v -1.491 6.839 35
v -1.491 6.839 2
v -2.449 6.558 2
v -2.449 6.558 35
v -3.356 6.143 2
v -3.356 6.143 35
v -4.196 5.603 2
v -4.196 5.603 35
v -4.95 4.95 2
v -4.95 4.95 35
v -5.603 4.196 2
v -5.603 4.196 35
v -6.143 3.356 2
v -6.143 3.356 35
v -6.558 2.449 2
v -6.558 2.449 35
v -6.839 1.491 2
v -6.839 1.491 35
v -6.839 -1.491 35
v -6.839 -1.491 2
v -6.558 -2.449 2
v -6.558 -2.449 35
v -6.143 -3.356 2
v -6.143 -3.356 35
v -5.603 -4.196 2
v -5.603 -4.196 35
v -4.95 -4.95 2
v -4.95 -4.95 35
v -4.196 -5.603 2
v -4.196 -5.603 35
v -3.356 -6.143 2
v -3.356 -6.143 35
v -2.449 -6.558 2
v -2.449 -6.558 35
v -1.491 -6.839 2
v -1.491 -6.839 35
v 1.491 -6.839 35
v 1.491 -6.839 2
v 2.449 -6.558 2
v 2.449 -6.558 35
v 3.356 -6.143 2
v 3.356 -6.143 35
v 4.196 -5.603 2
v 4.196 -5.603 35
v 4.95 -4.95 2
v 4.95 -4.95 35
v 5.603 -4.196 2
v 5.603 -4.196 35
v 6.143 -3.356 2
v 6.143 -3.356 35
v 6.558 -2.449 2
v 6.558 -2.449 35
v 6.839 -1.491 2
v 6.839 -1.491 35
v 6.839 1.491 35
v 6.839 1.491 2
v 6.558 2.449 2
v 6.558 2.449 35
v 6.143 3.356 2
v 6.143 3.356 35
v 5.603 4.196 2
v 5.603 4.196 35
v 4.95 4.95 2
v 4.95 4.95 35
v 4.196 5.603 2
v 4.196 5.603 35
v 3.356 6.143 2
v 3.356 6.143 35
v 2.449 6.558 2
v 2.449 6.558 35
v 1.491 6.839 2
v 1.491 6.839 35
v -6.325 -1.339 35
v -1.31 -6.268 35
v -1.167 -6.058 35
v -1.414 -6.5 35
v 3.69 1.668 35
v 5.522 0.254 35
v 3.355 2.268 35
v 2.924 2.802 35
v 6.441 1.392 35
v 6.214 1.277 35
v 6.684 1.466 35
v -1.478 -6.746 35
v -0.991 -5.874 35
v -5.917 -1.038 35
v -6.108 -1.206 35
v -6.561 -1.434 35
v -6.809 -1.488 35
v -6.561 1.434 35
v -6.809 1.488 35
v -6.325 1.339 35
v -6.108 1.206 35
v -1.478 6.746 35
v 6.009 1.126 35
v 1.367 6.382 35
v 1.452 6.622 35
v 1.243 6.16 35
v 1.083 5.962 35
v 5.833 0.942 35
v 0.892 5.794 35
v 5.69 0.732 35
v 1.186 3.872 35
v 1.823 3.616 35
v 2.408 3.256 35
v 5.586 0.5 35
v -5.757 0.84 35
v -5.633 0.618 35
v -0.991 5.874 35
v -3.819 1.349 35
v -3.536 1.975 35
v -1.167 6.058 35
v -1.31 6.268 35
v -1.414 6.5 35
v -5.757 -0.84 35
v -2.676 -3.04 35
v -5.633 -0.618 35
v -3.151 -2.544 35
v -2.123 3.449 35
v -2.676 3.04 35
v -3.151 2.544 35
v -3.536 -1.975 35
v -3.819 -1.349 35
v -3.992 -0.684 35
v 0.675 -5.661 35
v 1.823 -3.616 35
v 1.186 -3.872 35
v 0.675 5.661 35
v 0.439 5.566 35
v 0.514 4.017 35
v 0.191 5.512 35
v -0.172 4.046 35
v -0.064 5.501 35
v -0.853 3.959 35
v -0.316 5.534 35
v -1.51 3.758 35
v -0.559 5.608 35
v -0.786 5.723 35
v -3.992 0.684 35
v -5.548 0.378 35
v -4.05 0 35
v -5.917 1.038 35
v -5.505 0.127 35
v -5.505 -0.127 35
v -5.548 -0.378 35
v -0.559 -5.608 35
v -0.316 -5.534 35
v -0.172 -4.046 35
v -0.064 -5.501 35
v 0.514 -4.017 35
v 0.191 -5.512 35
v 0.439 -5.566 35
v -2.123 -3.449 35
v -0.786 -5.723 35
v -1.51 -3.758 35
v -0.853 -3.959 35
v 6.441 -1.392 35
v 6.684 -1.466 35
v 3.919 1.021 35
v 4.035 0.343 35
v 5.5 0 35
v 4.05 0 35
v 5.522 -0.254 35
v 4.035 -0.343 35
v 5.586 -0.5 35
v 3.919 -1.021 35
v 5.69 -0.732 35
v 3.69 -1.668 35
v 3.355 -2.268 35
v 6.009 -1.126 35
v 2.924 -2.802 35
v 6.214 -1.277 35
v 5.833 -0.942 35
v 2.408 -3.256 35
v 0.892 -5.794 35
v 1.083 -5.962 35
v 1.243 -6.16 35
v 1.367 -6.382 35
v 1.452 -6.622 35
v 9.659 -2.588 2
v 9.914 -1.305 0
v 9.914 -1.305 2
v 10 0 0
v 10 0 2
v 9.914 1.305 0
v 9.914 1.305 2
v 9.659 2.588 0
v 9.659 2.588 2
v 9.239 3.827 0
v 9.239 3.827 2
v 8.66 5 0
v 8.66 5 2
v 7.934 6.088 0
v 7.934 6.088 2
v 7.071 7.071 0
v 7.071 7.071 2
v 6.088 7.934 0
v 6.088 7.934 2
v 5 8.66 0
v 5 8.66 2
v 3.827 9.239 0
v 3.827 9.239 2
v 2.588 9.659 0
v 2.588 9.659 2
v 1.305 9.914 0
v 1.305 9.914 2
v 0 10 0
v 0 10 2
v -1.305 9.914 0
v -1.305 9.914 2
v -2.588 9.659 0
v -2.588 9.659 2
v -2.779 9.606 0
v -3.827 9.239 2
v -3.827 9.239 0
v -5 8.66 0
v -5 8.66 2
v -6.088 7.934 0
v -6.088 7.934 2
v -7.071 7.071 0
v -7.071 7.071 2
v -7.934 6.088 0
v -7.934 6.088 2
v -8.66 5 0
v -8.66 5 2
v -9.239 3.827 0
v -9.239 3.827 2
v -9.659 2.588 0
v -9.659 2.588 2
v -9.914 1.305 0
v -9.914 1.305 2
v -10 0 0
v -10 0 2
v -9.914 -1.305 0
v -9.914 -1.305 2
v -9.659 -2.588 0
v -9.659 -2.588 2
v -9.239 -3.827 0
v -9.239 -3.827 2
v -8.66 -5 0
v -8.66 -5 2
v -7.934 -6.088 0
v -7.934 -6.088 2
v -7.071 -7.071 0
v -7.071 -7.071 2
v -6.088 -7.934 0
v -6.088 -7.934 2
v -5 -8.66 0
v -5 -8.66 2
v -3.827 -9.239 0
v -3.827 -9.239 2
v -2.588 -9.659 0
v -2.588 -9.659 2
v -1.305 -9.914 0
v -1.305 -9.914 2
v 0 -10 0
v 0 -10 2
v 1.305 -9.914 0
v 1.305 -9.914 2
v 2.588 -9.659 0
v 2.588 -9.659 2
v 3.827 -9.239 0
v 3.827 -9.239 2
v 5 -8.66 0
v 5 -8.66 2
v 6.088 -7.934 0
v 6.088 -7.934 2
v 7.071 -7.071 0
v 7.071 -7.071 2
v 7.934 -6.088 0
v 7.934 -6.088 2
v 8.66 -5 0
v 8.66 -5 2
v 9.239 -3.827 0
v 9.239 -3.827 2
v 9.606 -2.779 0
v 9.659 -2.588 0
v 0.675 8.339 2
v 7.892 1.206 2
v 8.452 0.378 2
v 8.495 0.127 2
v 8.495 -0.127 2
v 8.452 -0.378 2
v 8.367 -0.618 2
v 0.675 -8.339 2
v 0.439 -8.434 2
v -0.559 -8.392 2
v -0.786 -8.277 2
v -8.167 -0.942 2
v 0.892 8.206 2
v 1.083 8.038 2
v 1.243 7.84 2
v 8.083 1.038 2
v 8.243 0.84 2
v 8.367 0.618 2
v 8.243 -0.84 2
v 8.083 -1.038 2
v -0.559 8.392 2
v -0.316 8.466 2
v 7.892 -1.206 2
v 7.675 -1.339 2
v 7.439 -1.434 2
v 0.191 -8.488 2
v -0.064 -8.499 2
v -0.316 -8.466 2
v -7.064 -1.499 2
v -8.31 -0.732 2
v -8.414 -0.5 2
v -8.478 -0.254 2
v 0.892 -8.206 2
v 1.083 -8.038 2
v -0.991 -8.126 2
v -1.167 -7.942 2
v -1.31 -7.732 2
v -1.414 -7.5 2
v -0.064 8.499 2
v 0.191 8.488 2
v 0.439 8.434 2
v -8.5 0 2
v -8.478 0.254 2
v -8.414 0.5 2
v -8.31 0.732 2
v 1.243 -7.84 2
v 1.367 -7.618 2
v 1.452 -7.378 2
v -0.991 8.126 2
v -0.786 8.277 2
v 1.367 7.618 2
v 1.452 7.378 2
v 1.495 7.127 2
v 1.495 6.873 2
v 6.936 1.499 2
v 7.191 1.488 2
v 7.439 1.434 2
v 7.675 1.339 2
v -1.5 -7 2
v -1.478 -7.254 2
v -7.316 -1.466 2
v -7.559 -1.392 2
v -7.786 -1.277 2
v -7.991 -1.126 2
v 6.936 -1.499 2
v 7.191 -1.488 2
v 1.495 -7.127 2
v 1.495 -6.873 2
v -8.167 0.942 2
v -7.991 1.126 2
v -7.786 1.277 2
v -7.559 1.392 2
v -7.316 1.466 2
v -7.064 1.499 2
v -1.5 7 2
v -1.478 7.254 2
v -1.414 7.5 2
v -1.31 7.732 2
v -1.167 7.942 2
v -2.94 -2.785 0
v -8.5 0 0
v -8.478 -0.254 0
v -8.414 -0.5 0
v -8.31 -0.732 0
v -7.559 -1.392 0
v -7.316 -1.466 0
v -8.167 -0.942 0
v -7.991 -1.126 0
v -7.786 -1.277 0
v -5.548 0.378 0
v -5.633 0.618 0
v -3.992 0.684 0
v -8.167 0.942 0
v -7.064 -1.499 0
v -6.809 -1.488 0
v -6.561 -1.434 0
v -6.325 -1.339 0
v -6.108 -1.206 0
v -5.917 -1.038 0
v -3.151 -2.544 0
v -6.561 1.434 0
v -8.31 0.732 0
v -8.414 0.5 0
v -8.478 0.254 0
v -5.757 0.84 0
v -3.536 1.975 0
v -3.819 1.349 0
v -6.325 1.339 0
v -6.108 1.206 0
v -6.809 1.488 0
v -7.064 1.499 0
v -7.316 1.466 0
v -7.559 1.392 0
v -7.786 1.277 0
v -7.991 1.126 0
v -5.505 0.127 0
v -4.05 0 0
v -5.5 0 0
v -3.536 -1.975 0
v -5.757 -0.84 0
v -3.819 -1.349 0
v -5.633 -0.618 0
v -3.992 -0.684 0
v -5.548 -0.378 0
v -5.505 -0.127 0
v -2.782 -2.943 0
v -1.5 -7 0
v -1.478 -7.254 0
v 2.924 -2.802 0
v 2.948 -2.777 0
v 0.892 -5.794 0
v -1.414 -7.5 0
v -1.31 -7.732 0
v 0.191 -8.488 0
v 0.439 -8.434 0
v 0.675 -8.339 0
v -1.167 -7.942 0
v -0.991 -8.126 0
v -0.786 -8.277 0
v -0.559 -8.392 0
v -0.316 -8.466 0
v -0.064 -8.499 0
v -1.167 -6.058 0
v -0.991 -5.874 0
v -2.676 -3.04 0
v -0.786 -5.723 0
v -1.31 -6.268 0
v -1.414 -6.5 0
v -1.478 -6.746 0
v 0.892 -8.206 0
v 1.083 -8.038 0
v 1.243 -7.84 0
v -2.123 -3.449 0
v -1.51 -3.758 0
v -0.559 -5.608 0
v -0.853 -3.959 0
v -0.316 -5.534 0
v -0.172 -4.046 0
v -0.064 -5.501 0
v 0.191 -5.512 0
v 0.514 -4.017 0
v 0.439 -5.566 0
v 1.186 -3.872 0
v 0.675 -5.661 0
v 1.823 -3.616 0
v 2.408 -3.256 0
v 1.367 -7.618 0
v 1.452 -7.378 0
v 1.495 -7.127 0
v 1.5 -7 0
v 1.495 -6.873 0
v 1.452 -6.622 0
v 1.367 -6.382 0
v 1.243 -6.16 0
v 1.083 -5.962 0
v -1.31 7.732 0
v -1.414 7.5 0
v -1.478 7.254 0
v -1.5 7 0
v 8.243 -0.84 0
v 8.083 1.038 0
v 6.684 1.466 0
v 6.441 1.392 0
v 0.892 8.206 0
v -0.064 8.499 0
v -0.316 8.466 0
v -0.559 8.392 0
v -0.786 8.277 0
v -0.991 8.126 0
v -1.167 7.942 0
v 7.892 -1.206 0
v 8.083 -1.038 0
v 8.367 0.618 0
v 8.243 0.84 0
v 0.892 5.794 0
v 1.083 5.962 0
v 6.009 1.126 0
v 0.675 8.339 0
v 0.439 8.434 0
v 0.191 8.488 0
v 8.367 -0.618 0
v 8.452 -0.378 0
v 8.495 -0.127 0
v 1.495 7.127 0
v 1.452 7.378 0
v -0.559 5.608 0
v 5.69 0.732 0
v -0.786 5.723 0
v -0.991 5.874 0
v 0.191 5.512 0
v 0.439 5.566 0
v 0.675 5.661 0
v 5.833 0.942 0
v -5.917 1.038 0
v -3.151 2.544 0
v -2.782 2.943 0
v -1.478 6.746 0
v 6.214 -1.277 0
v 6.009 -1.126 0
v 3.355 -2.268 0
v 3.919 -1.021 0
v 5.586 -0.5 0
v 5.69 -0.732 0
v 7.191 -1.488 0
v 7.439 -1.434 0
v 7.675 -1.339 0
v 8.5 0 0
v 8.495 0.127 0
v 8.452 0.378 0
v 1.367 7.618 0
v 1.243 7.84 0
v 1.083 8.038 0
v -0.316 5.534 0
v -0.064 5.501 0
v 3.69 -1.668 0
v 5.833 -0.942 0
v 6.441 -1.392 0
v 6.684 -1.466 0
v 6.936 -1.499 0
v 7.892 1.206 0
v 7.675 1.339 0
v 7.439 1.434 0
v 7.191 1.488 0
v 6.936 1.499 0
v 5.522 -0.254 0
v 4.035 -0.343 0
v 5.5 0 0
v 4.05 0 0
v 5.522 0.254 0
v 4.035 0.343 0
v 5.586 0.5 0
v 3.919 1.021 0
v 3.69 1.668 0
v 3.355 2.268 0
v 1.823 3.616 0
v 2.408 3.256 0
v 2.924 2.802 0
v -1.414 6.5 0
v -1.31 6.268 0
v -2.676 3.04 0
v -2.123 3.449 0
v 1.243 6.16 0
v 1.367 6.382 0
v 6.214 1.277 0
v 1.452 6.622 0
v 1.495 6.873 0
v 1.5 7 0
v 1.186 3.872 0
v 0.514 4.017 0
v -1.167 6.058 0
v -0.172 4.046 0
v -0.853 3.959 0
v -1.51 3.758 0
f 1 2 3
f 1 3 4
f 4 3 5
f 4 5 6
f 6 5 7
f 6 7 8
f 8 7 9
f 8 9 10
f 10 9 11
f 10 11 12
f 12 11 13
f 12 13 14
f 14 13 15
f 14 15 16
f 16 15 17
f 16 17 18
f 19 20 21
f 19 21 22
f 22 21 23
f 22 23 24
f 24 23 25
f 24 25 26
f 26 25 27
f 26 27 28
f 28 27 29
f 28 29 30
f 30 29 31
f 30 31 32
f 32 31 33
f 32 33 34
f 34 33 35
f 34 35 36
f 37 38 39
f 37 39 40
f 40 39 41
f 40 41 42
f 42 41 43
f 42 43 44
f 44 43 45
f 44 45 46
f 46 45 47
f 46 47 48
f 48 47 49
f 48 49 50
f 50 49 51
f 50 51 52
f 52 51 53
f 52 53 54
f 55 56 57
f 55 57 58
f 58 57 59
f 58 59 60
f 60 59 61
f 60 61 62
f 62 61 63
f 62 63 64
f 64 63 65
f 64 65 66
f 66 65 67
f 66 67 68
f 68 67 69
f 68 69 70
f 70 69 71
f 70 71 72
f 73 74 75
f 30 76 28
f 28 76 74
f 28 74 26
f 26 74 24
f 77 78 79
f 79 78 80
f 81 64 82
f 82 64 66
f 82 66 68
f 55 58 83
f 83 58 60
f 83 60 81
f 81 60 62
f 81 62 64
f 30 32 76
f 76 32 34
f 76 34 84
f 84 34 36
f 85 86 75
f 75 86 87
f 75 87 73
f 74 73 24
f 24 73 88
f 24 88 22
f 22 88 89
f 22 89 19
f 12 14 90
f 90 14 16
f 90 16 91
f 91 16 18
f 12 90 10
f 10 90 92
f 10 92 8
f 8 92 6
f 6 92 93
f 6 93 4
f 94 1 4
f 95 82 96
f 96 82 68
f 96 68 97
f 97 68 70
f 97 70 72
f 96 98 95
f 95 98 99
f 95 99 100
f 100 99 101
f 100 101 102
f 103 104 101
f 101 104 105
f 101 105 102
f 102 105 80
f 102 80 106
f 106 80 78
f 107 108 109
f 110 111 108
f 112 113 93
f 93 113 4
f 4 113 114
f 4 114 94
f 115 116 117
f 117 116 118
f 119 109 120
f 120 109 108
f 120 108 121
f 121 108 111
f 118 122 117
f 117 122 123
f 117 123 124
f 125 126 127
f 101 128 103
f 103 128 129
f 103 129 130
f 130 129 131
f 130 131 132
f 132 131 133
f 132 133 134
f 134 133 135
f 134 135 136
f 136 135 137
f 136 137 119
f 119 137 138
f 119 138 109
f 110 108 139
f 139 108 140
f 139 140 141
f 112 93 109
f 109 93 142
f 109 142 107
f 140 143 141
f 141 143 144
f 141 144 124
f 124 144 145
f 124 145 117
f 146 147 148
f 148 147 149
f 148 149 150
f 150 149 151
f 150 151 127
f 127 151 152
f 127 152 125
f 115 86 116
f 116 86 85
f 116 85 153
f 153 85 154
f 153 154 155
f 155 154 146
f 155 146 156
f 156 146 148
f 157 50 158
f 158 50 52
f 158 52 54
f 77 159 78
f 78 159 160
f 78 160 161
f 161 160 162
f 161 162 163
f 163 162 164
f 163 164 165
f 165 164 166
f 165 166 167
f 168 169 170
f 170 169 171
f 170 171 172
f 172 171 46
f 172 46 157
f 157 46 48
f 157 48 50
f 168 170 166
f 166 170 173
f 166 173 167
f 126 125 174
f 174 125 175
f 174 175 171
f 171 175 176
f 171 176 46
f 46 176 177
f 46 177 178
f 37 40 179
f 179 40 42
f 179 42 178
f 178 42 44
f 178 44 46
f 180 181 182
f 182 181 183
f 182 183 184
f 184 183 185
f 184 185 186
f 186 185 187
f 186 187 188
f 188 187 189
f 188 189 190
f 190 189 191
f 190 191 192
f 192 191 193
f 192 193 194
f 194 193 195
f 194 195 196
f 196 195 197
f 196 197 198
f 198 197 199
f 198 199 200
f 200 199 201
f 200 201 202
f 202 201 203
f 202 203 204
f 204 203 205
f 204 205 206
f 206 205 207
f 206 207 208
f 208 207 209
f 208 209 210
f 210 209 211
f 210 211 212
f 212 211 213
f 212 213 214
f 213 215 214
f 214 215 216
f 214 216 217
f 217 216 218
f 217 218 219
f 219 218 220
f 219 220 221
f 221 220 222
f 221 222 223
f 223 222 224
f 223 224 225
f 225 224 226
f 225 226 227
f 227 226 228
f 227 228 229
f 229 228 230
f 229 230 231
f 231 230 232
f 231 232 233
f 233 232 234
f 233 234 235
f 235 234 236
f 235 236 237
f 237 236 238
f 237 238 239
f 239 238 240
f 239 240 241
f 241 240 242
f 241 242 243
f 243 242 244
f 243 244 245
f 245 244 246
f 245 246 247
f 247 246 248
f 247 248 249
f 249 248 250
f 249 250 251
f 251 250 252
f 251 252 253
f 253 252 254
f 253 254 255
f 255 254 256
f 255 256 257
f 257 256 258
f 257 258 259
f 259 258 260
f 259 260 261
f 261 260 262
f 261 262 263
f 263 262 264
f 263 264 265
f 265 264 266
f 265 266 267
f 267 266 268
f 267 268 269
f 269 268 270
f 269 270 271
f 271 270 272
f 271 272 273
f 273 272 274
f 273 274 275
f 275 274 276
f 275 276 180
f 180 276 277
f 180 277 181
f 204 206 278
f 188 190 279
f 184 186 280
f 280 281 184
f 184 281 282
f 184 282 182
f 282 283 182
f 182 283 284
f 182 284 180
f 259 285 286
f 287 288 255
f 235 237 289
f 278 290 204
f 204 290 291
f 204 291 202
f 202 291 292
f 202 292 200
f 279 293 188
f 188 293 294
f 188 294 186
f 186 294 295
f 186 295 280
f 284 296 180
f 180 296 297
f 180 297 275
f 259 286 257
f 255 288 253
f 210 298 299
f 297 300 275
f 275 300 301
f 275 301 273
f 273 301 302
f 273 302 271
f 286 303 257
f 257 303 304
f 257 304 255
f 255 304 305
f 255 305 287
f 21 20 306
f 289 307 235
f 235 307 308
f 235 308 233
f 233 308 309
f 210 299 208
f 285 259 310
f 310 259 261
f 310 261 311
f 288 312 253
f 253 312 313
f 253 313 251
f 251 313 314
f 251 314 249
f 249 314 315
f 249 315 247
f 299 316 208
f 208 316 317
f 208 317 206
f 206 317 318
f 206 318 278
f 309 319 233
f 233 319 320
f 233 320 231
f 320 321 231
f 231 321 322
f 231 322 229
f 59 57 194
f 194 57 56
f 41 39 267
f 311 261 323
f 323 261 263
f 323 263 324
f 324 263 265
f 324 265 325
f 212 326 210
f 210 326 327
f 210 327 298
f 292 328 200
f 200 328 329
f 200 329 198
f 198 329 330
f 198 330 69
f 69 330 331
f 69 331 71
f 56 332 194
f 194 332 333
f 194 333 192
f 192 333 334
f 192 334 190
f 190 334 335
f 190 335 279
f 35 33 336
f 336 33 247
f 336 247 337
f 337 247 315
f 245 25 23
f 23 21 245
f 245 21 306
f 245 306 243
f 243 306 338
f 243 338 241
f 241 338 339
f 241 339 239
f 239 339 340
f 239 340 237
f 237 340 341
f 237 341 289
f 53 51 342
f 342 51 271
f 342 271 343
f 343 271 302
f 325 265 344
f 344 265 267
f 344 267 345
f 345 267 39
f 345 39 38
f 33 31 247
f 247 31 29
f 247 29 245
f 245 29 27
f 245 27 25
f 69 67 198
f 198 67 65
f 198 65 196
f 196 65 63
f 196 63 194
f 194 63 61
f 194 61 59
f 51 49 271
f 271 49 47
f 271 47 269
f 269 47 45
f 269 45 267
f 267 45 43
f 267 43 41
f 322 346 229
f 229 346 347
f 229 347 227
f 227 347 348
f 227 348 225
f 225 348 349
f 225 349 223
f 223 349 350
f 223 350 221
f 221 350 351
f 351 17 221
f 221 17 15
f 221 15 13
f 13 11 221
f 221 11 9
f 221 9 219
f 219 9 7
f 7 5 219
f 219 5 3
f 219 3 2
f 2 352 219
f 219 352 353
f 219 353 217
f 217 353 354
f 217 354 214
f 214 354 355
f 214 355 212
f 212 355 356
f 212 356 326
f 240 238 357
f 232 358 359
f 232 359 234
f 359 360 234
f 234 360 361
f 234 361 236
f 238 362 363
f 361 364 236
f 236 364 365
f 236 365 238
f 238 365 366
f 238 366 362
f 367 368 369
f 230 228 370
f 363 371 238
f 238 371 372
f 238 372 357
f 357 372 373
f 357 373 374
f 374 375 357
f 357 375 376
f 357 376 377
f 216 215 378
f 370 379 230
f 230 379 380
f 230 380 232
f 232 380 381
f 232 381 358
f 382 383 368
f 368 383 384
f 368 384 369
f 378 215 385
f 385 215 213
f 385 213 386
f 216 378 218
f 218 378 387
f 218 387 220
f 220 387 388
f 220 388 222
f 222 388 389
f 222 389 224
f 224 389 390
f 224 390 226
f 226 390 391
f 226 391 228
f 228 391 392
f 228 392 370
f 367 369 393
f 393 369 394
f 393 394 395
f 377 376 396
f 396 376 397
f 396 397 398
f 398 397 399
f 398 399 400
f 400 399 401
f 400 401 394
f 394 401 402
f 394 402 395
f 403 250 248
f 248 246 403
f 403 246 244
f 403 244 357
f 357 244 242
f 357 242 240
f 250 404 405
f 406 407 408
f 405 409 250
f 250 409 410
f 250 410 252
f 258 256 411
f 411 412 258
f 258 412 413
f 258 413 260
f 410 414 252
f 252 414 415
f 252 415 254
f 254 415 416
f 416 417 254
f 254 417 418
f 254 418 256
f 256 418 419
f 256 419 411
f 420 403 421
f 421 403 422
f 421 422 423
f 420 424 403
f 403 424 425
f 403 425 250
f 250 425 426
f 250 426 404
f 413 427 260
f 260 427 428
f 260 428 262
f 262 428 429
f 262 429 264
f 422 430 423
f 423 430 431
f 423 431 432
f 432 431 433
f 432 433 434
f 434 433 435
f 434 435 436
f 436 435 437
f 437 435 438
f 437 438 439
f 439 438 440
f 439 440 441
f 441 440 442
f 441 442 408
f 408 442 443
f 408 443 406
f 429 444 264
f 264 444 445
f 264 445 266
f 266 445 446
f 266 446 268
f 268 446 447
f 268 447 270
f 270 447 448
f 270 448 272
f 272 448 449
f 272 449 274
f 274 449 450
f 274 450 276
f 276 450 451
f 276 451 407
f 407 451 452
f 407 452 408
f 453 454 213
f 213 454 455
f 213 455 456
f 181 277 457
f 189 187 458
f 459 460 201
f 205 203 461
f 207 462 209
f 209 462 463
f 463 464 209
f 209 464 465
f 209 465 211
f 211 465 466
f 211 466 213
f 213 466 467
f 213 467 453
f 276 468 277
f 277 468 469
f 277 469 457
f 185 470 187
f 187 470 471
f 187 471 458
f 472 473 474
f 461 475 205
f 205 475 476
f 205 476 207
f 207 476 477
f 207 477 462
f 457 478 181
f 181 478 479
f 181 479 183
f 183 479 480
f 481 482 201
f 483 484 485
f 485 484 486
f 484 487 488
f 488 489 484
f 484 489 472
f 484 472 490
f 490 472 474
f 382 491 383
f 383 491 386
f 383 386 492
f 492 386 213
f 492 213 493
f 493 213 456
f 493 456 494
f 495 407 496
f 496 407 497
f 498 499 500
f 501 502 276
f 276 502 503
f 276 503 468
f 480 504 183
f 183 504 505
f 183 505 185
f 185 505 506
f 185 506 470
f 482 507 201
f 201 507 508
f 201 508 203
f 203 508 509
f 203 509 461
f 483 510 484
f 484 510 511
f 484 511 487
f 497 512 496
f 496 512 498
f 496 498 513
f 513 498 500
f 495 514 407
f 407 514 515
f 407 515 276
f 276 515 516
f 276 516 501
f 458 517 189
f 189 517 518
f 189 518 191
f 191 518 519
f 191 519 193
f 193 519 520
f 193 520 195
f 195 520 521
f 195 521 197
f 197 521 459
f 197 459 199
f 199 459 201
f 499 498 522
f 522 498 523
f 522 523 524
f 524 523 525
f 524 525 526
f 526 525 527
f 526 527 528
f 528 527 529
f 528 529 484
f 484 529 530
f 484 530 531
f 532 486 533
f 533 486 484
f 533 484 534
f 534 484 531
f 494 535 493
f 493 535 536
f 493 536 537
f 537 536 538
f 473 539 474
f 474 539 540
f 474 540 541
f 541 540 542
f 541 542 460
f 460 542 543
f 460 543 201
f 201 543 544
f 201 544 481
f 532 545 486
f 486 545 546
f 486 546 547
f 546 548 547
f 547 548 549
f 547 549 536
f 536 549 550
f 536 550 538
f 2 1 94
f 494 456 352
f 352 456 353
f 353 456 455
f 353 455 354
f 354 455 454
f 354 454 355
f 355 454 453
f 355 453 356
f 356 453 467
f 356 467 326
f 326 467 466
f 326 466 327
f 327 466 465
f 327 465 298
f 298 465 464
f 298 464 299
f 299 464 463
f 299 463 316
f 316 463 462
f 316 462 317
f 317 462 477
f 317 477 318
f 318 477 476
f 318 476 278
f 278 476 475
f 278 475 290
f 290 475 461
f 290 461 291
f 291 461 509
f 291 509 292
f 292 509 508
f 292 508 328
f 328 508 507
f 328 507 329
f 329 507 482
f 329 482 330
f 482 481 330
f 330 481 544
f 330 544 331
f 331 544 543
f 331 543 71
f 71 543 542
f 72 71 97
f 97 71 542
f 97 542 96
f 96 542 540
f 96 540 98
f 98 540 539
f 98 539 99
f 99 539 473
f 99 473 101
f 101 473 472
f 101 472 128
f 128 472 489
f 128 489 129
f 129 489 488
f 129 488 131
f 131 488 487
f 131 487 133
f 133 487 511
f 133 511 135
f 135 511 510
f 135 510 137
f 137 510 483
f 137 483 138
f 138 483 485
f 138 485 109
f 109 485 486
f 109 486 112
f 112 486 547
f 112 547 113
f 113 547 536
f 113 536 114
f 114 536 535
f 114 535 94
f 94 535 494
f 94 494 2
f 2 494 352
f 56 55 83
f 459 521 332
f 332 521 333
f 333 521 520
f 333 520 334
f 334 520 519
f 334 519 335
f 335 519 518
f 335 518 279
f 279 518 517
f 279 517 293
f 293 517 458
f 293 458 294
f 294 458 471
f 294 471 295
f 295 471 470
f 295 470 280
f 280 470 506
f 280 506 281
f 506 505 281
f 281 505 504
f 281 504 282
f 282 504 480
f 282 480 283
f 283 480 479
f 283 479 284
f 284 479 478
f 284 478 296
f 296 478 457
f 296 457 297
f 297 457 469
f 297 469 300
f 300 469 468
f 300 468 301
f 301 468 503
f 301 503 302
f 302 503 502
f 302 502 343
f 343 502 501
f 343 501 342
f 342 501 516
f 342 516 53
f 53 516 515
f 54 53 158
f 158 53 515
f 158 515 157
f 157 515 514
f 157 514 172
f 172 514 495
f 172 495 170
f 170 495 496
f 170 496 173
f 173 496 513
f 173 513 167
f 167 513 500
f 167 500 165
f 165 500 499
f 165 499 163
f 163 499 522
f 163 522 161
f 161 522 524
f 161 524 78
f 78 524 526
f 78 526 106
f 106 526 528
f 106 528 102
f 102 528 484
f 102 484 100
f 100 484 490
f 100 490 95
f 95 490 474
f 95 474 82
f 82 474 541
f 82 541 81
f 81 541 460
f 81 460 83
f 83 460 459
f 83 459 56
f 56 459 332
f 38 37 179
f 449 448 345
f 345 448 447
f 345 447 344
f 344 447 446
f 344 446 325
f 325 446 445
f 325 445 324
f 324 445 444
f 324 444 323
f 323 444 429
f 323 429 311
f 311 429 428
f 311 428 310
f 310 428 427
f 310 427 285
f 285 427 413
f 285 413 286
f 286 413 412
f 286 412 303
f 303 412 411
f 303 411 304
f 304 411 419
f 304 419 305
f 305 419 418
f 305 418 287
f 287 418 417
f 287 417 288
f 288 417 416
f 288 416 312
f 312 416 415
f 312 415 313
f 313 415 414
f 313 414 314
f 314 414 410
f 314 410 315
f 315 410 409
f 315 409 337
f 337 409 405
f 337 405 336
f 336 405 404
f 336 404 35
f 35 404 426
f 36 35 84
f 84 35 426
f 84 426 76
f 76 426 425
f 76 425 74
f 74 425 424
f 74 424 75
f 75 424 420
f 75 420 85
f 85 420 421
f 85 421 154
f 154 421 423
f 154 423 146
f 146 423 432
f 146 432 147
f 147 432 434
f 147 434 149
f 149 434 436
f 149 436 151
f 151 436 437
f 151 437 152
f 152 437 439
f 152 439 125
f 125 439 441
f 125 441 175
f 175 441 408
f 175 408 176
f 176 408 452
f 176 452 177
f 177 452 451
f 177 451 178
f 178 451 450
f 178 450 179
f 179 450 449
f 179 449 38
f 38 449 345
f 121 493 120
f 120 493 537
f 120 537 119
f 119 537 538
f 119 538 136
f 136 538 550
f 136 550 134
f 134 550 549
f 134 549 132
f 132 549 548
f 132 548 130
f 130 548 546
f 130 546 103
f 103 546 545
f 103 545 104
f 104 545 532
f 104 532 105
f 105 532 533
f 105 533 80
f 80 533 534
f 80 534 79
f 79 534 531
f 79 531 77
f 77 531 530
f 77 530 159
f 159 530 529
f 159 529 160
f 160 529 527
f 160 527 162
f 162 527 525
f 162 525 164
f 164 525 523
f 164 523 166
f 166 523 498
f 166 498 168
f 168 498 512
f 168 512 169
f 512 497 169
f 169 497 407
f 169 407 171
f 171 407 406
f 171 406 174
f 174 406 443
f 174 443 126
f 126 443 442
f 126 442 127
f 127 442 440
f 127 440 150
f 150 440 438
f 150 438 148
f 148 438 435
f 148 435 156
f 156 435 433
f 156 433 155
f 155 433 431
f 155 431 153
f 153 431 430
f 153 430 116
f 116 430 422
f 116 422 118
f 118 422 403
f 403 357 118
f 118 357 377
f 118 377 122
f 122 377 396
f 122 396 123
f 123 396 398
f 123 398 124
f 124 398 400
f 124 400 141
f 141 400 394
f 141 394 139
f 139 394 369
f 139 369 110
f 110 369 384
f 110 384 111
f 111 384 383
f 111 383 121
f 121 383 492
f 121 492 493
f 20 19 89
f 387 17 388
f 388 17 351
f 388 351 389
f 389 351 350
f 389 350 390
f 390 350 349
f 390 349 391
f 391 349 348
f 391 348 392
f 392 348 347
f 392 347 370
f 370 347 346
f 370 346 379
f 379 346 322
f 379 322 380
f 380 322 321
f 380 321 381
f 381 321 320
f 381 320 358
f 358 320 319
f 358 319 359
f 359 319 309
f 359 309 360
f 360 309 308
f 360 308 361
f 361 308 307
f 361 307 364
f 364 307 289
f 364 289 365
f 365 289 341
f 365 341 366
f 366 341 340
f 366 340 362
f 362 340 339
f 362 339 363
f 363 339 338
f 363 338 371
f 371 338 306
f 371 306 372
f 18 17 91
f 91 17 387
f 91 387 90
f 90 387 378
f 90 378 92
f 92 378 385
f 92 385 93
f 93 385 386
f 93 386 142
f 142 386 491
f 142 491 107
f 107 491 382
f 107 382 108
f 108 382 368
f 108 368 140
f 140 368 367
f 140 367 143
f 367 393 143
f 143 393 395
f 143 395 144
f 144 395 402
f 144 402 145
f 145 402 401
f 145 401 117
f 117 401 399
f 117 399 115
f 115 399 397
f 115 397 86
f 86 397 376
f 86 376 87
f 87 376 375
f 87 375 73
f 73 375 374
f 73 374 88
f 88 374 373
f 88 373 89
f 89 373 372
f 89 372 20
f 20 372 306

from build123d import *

# Parameters (mm, degrees)
SKETCH1_R           = 7
BOSS_EXTRUDE5_DEPTH = 35
SKETCH2_R           = 10
BOSS_EXTRUDE7_DEPTH = 2
SKETCH1_19_R        = 4.05
SKETCH1_19_R_2      = 1.5
CUT_EXTRUDE2_DEPTH  = 41


with BuildPart() as part:
    # Sketch1 → Boss-Extrude5 (new body)
    with BuildSketch(Plane.XY):
        Circle(SKETCH1_R)
    extrude(amount=BOSS_EXTRUDE5_DEPTH)

    # Sketch2 → Boss-Extrude7 (add)
    with BuildSketch(Plane(origin=(0, 0, 0), x_dir=(-1, 0, 0), z_dir=(0, 0, -1))):
        Circle(SKETCH2_R)
    extrude(amount=-BOSS_EXTRUDE7_DEPTH)

    # Sketch1<19> → Cut-Extrude2 (cut)
    with BuildSketch(Plane.XY):
        Circle(SKETCH1_19_R)
        with Locations((0, 7)):
            Circle(SKETCH1_19_R_2)
        with Locations((7, 0)):
            Circle(SKETCH1_19_R_2)
        with Locations((0, -7)):
            Circle(SKETCH1_19_R_2)
        with Locations((-7, 0)):
            Circle(SKETCH1_19_R_2)
    extrude(amount=CUT_EXTRUDE2_DEPTH, mode=Mode.SUBTRACT)


solid = part.part
